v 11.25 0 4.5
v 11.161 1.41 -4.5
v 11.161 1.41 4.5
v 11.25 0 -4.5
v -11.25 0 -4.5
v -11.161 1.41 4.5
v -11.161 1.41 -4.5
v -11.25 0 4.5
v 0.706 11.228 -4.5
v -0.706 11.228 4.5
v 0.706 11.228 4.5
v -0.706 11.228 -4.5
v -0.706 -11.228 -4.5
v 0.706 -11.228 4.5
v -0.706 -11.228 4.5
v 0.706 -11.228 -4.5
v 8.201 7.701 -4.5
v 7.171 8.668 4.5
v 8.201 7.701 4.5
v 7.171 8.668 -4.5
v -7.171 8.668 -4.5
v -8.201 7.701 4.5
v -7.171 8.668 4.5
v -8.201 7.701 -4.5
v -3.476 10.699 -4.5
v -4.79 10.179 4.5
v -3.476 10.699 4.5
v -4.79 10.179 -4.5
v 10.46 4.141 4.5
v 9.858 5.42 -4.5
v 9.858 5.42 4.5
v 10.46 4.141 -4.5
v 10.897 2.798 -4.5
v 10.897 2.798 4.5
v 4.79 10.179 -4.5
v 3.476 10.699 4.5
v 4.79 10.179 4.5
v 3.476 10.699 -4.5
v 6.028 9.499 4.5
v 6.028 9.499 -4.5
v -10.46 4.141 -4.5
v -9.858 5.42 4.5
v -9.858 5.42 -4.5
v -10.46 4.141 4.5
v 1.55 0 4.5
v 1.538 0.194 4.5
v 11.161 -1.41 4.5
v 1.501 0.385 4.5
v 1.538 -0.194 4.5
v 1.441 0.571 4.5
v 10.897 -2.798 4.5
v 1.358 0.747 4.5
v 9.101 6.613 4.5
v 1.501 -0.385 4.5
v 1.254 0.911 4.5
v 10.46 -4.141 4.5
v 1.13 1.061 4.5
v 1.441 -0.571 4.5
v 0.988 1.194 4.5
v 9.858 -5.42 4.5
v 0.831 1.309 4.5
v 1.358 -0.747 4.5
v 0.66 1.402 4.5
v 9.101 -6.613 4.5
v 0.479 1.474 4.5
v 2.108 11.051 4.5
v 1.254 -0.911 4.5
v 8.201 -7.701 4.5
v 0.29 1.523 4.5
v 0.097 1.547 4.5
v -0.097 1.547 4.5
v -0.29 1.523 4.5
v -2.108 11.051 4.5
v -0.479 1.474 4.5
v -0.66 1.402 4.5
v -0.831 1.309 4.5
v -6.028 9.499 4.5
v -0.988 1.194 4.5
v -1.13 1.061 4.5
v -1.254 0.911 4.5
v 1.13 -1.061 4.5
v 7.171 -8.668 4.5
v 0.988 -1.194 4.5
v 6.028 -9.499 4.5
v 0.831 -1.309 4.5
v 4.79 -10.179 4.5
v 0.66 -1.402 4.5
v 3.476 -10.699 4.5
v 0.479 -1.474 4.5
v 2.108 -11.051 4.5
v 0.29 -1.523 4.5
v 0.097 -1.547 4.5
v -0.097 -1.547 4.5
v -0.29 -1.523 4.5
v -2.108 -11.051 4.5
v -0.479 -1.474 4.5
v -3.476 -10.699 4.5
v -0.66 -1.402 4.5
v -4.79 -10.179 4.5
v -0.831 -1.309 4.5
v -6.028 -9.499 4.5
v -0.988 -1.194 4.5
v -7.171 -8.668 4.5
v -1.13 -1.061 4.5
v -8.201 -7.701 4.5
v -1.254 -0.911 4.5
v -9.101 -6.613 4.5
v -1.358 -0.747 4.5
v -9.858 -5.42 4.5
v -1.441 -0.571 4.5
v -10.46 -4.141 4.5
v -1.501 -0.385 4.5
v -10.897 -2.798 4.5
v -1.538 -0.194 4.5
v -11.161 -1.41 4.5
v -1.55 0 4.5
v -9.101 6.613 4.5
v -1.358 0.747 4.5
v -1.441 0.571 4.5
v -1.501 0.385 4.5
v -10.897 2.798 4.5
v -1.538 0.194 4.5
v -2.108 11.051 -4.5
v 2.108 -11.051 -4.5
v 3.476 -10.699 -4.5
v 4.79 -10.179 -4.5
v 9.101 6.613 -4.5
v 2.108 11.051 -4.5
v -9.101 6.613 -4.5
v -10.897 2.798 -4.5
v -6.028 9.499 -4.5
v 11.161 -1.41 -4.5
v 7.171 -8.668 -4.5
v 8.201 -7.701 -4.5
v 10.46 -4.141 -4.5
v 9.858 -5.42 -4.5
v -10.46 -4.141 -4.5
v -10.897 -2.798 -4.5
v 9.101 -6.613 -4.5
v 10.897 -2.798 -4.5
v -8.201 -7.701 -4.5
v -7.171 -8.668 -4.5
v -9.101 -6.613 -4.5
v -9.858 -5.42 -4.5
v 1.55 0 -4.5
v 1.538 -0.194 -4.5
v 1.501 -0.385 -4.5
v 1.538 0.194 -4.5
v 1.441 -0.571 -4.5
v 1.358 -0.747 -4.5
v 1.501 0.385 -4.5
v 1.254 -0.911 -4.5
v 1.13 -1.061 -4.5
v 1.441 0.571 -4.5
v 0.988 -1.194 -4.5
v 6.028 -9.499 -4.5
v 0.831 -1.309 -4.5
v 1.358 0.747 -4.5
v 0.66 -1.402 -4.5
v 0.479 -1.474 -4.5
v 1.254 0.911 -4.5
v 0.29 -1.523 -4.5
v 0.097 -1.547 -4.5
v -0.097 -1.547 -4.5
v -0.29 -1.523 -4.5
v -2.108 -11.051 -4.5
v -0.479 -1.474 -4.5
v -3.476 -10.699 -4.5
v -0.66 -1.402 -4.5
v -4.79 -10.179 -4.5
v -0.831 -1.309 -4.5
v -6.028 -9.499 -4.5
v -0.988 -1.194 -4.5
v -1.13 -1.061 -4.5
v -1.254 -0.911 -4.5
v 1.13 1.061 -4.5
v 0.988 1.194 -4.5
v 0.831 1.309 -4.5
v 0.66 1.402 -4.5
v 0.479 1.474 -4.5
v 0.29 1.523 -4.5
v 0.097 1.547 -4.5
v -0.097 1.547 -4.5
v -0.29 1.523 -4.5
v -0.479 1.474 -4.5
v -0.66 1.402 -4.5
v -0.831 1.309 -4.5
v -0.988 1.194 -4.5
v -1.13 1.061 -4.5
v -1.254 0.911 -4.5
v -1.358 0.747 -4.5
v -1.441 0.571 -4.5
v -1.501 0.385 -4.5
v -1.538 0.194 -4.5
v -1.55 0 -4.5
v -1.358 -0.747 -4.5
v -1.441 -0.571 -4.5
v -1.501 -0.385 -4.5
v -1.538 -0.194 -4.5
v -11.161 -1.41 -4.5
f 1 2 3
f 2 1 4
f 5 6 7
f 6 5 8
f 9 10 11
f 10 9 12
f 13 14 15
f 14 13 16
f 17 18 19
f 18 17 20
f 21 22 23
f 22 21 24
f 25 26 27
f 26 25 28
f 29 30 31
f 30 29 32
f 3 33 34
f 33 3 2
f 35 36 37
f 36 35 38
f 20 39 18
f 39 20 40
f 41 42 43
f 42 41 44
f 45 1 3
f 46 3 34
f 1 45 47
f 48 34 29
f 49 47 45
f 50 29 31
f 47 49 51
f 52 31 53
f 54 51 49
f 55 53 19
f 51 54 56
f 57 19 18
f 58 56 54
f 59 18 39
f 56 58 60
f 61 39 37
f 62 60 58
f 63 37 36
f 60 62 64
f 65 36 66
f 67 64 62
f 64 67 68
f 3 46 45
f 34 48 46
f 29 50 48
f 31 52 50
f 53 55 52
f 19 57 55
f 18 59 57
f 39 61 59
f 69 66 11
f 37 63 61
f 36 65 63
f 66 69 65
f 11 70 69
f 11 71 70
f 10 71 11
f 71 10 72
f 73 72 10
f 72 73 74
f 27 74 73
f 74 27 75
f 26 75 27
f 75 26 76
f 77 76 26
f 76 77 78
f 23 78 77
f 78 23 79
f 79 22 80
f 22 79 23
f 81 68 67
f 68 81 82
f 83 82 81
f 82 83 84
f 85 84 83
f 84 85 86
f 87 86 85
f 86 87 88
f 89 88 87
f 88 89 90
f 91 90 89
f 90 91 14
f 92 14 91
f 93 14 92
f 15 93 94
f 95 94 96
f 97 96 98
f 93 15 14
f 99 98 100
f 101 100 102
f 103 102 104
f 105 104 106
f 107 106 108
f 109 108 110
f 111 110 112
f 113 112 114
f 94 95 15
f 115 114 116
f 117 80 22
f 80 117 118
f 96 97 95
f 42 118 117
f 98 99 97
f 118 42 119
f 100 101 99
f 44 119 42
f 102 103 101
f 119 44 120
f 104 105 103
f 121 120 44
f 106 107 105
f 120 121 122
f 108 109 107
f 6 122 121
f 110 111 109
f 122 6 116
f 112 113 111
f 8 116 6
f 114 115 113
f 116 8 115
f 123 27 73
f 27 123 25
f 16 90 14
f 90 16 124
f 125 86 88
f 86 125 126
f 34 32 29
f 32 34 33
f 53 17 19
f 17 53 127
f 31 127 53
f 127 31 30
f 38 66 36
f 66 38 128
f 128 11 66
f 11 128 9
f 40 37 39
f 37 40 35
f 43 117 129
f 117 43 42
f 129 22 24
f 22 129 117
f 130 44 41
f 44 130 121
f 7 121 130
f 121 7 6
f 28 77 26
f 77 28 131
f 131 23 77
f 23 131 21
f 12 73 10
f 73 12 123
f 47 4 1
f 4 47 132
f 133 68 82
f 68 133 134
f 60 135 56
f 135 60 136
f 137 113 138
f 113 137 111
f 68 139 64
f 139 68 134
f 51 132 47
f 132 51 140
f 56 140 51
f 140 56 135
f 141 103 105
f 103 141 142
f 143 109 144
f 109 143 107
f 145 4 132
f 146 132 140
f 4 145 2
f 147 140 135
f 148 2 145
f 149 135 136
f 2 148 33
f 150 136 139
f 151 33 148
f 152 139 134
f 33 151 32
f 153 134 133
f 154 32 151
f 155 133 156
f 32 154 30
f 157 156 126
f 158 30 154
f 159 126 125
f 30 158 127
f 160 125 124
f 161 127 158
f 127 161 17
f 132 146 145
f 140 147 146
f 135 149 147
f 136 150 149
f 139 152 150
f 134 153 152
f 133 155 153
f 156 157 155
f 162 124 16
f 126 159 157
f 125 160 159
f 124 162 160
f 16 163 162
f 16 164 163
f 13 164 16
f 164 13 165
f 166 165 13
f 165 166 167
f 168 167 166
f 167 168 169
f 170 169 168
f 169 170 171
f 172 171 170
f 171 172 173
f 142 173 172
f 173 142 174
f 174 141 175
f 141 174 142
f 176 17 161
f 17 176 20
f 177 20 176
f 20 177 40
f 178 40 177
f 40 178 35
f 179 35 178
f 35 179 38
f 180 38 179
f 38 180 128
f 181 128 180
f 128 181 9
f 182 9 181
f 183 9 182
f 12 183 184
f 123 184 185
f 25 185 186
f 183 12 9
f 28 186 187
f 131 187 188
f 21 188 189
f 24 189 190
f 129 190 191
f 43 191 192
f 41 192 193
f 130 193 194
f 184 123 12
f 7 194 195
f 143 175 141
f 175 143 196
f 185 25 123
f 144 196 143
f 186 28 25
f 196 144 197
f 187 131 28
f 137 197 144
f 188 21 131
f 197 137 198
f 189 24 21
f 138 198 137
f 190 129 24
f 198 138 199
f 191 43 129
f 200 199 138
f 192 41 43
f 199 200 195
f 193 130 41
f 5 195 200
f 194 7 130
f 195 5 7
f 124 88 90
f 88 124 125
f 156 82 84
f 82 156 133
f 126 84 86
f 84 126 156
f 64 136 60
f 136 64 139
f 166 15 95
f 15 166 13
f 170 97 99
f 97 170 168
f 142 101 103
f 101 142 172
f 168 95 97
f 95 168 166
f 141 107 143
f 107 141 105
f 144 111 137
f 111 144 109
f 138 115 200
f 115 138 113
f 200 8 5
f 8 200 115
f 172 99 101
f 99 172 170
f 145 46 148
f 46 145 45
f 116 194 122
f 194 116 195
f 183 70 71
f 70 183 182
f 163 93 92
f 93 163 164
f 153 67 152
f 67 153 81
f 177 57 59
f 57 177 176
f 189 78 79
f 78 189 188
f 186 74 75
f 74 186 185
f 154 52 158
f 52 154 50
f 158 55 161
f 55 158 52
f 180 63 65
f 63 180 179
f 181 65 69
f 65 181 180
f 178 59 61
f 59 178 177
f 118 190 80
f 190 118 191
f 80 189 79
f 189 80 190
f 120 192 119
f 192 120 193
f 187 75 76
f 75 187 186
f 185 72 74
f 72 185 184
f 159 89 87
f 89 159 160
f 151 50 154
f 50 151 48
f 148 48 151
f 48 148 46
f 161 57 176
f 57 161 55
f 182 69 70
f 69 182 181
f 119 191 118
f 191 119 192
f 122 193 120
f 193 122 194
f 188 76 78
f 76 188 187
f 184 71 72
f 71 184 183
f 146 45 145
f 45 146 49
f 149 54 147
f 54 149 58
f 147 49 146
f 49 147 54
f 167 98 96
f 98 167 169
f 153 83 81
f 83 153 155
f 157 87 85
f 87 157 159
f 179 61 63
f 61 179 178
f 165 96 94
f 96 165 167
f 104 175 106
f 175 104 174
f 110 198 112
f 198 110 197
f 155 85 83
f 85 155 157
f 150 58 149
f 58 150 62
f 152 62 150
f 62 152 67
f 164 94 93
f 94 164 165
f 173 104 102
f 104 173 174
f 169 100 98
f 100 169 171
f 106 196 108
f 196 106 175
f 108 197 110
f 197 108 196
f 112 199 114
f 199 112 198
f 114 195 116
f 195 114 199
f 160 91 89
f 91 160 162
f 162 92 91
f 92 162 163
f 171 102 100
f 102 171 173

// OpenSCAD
$fn = 50;


difference() {
	union() {
		translate(v = [0, 0, -4.5000000000]) {
			cylinder(h = 9, r = 11.2500000000);
		}
	}
	union() {
		translate(v = [0, 0, -100.0000000000]) {
			cylinder(h = 200, r = 1.5500000000);
		}
	}
}
